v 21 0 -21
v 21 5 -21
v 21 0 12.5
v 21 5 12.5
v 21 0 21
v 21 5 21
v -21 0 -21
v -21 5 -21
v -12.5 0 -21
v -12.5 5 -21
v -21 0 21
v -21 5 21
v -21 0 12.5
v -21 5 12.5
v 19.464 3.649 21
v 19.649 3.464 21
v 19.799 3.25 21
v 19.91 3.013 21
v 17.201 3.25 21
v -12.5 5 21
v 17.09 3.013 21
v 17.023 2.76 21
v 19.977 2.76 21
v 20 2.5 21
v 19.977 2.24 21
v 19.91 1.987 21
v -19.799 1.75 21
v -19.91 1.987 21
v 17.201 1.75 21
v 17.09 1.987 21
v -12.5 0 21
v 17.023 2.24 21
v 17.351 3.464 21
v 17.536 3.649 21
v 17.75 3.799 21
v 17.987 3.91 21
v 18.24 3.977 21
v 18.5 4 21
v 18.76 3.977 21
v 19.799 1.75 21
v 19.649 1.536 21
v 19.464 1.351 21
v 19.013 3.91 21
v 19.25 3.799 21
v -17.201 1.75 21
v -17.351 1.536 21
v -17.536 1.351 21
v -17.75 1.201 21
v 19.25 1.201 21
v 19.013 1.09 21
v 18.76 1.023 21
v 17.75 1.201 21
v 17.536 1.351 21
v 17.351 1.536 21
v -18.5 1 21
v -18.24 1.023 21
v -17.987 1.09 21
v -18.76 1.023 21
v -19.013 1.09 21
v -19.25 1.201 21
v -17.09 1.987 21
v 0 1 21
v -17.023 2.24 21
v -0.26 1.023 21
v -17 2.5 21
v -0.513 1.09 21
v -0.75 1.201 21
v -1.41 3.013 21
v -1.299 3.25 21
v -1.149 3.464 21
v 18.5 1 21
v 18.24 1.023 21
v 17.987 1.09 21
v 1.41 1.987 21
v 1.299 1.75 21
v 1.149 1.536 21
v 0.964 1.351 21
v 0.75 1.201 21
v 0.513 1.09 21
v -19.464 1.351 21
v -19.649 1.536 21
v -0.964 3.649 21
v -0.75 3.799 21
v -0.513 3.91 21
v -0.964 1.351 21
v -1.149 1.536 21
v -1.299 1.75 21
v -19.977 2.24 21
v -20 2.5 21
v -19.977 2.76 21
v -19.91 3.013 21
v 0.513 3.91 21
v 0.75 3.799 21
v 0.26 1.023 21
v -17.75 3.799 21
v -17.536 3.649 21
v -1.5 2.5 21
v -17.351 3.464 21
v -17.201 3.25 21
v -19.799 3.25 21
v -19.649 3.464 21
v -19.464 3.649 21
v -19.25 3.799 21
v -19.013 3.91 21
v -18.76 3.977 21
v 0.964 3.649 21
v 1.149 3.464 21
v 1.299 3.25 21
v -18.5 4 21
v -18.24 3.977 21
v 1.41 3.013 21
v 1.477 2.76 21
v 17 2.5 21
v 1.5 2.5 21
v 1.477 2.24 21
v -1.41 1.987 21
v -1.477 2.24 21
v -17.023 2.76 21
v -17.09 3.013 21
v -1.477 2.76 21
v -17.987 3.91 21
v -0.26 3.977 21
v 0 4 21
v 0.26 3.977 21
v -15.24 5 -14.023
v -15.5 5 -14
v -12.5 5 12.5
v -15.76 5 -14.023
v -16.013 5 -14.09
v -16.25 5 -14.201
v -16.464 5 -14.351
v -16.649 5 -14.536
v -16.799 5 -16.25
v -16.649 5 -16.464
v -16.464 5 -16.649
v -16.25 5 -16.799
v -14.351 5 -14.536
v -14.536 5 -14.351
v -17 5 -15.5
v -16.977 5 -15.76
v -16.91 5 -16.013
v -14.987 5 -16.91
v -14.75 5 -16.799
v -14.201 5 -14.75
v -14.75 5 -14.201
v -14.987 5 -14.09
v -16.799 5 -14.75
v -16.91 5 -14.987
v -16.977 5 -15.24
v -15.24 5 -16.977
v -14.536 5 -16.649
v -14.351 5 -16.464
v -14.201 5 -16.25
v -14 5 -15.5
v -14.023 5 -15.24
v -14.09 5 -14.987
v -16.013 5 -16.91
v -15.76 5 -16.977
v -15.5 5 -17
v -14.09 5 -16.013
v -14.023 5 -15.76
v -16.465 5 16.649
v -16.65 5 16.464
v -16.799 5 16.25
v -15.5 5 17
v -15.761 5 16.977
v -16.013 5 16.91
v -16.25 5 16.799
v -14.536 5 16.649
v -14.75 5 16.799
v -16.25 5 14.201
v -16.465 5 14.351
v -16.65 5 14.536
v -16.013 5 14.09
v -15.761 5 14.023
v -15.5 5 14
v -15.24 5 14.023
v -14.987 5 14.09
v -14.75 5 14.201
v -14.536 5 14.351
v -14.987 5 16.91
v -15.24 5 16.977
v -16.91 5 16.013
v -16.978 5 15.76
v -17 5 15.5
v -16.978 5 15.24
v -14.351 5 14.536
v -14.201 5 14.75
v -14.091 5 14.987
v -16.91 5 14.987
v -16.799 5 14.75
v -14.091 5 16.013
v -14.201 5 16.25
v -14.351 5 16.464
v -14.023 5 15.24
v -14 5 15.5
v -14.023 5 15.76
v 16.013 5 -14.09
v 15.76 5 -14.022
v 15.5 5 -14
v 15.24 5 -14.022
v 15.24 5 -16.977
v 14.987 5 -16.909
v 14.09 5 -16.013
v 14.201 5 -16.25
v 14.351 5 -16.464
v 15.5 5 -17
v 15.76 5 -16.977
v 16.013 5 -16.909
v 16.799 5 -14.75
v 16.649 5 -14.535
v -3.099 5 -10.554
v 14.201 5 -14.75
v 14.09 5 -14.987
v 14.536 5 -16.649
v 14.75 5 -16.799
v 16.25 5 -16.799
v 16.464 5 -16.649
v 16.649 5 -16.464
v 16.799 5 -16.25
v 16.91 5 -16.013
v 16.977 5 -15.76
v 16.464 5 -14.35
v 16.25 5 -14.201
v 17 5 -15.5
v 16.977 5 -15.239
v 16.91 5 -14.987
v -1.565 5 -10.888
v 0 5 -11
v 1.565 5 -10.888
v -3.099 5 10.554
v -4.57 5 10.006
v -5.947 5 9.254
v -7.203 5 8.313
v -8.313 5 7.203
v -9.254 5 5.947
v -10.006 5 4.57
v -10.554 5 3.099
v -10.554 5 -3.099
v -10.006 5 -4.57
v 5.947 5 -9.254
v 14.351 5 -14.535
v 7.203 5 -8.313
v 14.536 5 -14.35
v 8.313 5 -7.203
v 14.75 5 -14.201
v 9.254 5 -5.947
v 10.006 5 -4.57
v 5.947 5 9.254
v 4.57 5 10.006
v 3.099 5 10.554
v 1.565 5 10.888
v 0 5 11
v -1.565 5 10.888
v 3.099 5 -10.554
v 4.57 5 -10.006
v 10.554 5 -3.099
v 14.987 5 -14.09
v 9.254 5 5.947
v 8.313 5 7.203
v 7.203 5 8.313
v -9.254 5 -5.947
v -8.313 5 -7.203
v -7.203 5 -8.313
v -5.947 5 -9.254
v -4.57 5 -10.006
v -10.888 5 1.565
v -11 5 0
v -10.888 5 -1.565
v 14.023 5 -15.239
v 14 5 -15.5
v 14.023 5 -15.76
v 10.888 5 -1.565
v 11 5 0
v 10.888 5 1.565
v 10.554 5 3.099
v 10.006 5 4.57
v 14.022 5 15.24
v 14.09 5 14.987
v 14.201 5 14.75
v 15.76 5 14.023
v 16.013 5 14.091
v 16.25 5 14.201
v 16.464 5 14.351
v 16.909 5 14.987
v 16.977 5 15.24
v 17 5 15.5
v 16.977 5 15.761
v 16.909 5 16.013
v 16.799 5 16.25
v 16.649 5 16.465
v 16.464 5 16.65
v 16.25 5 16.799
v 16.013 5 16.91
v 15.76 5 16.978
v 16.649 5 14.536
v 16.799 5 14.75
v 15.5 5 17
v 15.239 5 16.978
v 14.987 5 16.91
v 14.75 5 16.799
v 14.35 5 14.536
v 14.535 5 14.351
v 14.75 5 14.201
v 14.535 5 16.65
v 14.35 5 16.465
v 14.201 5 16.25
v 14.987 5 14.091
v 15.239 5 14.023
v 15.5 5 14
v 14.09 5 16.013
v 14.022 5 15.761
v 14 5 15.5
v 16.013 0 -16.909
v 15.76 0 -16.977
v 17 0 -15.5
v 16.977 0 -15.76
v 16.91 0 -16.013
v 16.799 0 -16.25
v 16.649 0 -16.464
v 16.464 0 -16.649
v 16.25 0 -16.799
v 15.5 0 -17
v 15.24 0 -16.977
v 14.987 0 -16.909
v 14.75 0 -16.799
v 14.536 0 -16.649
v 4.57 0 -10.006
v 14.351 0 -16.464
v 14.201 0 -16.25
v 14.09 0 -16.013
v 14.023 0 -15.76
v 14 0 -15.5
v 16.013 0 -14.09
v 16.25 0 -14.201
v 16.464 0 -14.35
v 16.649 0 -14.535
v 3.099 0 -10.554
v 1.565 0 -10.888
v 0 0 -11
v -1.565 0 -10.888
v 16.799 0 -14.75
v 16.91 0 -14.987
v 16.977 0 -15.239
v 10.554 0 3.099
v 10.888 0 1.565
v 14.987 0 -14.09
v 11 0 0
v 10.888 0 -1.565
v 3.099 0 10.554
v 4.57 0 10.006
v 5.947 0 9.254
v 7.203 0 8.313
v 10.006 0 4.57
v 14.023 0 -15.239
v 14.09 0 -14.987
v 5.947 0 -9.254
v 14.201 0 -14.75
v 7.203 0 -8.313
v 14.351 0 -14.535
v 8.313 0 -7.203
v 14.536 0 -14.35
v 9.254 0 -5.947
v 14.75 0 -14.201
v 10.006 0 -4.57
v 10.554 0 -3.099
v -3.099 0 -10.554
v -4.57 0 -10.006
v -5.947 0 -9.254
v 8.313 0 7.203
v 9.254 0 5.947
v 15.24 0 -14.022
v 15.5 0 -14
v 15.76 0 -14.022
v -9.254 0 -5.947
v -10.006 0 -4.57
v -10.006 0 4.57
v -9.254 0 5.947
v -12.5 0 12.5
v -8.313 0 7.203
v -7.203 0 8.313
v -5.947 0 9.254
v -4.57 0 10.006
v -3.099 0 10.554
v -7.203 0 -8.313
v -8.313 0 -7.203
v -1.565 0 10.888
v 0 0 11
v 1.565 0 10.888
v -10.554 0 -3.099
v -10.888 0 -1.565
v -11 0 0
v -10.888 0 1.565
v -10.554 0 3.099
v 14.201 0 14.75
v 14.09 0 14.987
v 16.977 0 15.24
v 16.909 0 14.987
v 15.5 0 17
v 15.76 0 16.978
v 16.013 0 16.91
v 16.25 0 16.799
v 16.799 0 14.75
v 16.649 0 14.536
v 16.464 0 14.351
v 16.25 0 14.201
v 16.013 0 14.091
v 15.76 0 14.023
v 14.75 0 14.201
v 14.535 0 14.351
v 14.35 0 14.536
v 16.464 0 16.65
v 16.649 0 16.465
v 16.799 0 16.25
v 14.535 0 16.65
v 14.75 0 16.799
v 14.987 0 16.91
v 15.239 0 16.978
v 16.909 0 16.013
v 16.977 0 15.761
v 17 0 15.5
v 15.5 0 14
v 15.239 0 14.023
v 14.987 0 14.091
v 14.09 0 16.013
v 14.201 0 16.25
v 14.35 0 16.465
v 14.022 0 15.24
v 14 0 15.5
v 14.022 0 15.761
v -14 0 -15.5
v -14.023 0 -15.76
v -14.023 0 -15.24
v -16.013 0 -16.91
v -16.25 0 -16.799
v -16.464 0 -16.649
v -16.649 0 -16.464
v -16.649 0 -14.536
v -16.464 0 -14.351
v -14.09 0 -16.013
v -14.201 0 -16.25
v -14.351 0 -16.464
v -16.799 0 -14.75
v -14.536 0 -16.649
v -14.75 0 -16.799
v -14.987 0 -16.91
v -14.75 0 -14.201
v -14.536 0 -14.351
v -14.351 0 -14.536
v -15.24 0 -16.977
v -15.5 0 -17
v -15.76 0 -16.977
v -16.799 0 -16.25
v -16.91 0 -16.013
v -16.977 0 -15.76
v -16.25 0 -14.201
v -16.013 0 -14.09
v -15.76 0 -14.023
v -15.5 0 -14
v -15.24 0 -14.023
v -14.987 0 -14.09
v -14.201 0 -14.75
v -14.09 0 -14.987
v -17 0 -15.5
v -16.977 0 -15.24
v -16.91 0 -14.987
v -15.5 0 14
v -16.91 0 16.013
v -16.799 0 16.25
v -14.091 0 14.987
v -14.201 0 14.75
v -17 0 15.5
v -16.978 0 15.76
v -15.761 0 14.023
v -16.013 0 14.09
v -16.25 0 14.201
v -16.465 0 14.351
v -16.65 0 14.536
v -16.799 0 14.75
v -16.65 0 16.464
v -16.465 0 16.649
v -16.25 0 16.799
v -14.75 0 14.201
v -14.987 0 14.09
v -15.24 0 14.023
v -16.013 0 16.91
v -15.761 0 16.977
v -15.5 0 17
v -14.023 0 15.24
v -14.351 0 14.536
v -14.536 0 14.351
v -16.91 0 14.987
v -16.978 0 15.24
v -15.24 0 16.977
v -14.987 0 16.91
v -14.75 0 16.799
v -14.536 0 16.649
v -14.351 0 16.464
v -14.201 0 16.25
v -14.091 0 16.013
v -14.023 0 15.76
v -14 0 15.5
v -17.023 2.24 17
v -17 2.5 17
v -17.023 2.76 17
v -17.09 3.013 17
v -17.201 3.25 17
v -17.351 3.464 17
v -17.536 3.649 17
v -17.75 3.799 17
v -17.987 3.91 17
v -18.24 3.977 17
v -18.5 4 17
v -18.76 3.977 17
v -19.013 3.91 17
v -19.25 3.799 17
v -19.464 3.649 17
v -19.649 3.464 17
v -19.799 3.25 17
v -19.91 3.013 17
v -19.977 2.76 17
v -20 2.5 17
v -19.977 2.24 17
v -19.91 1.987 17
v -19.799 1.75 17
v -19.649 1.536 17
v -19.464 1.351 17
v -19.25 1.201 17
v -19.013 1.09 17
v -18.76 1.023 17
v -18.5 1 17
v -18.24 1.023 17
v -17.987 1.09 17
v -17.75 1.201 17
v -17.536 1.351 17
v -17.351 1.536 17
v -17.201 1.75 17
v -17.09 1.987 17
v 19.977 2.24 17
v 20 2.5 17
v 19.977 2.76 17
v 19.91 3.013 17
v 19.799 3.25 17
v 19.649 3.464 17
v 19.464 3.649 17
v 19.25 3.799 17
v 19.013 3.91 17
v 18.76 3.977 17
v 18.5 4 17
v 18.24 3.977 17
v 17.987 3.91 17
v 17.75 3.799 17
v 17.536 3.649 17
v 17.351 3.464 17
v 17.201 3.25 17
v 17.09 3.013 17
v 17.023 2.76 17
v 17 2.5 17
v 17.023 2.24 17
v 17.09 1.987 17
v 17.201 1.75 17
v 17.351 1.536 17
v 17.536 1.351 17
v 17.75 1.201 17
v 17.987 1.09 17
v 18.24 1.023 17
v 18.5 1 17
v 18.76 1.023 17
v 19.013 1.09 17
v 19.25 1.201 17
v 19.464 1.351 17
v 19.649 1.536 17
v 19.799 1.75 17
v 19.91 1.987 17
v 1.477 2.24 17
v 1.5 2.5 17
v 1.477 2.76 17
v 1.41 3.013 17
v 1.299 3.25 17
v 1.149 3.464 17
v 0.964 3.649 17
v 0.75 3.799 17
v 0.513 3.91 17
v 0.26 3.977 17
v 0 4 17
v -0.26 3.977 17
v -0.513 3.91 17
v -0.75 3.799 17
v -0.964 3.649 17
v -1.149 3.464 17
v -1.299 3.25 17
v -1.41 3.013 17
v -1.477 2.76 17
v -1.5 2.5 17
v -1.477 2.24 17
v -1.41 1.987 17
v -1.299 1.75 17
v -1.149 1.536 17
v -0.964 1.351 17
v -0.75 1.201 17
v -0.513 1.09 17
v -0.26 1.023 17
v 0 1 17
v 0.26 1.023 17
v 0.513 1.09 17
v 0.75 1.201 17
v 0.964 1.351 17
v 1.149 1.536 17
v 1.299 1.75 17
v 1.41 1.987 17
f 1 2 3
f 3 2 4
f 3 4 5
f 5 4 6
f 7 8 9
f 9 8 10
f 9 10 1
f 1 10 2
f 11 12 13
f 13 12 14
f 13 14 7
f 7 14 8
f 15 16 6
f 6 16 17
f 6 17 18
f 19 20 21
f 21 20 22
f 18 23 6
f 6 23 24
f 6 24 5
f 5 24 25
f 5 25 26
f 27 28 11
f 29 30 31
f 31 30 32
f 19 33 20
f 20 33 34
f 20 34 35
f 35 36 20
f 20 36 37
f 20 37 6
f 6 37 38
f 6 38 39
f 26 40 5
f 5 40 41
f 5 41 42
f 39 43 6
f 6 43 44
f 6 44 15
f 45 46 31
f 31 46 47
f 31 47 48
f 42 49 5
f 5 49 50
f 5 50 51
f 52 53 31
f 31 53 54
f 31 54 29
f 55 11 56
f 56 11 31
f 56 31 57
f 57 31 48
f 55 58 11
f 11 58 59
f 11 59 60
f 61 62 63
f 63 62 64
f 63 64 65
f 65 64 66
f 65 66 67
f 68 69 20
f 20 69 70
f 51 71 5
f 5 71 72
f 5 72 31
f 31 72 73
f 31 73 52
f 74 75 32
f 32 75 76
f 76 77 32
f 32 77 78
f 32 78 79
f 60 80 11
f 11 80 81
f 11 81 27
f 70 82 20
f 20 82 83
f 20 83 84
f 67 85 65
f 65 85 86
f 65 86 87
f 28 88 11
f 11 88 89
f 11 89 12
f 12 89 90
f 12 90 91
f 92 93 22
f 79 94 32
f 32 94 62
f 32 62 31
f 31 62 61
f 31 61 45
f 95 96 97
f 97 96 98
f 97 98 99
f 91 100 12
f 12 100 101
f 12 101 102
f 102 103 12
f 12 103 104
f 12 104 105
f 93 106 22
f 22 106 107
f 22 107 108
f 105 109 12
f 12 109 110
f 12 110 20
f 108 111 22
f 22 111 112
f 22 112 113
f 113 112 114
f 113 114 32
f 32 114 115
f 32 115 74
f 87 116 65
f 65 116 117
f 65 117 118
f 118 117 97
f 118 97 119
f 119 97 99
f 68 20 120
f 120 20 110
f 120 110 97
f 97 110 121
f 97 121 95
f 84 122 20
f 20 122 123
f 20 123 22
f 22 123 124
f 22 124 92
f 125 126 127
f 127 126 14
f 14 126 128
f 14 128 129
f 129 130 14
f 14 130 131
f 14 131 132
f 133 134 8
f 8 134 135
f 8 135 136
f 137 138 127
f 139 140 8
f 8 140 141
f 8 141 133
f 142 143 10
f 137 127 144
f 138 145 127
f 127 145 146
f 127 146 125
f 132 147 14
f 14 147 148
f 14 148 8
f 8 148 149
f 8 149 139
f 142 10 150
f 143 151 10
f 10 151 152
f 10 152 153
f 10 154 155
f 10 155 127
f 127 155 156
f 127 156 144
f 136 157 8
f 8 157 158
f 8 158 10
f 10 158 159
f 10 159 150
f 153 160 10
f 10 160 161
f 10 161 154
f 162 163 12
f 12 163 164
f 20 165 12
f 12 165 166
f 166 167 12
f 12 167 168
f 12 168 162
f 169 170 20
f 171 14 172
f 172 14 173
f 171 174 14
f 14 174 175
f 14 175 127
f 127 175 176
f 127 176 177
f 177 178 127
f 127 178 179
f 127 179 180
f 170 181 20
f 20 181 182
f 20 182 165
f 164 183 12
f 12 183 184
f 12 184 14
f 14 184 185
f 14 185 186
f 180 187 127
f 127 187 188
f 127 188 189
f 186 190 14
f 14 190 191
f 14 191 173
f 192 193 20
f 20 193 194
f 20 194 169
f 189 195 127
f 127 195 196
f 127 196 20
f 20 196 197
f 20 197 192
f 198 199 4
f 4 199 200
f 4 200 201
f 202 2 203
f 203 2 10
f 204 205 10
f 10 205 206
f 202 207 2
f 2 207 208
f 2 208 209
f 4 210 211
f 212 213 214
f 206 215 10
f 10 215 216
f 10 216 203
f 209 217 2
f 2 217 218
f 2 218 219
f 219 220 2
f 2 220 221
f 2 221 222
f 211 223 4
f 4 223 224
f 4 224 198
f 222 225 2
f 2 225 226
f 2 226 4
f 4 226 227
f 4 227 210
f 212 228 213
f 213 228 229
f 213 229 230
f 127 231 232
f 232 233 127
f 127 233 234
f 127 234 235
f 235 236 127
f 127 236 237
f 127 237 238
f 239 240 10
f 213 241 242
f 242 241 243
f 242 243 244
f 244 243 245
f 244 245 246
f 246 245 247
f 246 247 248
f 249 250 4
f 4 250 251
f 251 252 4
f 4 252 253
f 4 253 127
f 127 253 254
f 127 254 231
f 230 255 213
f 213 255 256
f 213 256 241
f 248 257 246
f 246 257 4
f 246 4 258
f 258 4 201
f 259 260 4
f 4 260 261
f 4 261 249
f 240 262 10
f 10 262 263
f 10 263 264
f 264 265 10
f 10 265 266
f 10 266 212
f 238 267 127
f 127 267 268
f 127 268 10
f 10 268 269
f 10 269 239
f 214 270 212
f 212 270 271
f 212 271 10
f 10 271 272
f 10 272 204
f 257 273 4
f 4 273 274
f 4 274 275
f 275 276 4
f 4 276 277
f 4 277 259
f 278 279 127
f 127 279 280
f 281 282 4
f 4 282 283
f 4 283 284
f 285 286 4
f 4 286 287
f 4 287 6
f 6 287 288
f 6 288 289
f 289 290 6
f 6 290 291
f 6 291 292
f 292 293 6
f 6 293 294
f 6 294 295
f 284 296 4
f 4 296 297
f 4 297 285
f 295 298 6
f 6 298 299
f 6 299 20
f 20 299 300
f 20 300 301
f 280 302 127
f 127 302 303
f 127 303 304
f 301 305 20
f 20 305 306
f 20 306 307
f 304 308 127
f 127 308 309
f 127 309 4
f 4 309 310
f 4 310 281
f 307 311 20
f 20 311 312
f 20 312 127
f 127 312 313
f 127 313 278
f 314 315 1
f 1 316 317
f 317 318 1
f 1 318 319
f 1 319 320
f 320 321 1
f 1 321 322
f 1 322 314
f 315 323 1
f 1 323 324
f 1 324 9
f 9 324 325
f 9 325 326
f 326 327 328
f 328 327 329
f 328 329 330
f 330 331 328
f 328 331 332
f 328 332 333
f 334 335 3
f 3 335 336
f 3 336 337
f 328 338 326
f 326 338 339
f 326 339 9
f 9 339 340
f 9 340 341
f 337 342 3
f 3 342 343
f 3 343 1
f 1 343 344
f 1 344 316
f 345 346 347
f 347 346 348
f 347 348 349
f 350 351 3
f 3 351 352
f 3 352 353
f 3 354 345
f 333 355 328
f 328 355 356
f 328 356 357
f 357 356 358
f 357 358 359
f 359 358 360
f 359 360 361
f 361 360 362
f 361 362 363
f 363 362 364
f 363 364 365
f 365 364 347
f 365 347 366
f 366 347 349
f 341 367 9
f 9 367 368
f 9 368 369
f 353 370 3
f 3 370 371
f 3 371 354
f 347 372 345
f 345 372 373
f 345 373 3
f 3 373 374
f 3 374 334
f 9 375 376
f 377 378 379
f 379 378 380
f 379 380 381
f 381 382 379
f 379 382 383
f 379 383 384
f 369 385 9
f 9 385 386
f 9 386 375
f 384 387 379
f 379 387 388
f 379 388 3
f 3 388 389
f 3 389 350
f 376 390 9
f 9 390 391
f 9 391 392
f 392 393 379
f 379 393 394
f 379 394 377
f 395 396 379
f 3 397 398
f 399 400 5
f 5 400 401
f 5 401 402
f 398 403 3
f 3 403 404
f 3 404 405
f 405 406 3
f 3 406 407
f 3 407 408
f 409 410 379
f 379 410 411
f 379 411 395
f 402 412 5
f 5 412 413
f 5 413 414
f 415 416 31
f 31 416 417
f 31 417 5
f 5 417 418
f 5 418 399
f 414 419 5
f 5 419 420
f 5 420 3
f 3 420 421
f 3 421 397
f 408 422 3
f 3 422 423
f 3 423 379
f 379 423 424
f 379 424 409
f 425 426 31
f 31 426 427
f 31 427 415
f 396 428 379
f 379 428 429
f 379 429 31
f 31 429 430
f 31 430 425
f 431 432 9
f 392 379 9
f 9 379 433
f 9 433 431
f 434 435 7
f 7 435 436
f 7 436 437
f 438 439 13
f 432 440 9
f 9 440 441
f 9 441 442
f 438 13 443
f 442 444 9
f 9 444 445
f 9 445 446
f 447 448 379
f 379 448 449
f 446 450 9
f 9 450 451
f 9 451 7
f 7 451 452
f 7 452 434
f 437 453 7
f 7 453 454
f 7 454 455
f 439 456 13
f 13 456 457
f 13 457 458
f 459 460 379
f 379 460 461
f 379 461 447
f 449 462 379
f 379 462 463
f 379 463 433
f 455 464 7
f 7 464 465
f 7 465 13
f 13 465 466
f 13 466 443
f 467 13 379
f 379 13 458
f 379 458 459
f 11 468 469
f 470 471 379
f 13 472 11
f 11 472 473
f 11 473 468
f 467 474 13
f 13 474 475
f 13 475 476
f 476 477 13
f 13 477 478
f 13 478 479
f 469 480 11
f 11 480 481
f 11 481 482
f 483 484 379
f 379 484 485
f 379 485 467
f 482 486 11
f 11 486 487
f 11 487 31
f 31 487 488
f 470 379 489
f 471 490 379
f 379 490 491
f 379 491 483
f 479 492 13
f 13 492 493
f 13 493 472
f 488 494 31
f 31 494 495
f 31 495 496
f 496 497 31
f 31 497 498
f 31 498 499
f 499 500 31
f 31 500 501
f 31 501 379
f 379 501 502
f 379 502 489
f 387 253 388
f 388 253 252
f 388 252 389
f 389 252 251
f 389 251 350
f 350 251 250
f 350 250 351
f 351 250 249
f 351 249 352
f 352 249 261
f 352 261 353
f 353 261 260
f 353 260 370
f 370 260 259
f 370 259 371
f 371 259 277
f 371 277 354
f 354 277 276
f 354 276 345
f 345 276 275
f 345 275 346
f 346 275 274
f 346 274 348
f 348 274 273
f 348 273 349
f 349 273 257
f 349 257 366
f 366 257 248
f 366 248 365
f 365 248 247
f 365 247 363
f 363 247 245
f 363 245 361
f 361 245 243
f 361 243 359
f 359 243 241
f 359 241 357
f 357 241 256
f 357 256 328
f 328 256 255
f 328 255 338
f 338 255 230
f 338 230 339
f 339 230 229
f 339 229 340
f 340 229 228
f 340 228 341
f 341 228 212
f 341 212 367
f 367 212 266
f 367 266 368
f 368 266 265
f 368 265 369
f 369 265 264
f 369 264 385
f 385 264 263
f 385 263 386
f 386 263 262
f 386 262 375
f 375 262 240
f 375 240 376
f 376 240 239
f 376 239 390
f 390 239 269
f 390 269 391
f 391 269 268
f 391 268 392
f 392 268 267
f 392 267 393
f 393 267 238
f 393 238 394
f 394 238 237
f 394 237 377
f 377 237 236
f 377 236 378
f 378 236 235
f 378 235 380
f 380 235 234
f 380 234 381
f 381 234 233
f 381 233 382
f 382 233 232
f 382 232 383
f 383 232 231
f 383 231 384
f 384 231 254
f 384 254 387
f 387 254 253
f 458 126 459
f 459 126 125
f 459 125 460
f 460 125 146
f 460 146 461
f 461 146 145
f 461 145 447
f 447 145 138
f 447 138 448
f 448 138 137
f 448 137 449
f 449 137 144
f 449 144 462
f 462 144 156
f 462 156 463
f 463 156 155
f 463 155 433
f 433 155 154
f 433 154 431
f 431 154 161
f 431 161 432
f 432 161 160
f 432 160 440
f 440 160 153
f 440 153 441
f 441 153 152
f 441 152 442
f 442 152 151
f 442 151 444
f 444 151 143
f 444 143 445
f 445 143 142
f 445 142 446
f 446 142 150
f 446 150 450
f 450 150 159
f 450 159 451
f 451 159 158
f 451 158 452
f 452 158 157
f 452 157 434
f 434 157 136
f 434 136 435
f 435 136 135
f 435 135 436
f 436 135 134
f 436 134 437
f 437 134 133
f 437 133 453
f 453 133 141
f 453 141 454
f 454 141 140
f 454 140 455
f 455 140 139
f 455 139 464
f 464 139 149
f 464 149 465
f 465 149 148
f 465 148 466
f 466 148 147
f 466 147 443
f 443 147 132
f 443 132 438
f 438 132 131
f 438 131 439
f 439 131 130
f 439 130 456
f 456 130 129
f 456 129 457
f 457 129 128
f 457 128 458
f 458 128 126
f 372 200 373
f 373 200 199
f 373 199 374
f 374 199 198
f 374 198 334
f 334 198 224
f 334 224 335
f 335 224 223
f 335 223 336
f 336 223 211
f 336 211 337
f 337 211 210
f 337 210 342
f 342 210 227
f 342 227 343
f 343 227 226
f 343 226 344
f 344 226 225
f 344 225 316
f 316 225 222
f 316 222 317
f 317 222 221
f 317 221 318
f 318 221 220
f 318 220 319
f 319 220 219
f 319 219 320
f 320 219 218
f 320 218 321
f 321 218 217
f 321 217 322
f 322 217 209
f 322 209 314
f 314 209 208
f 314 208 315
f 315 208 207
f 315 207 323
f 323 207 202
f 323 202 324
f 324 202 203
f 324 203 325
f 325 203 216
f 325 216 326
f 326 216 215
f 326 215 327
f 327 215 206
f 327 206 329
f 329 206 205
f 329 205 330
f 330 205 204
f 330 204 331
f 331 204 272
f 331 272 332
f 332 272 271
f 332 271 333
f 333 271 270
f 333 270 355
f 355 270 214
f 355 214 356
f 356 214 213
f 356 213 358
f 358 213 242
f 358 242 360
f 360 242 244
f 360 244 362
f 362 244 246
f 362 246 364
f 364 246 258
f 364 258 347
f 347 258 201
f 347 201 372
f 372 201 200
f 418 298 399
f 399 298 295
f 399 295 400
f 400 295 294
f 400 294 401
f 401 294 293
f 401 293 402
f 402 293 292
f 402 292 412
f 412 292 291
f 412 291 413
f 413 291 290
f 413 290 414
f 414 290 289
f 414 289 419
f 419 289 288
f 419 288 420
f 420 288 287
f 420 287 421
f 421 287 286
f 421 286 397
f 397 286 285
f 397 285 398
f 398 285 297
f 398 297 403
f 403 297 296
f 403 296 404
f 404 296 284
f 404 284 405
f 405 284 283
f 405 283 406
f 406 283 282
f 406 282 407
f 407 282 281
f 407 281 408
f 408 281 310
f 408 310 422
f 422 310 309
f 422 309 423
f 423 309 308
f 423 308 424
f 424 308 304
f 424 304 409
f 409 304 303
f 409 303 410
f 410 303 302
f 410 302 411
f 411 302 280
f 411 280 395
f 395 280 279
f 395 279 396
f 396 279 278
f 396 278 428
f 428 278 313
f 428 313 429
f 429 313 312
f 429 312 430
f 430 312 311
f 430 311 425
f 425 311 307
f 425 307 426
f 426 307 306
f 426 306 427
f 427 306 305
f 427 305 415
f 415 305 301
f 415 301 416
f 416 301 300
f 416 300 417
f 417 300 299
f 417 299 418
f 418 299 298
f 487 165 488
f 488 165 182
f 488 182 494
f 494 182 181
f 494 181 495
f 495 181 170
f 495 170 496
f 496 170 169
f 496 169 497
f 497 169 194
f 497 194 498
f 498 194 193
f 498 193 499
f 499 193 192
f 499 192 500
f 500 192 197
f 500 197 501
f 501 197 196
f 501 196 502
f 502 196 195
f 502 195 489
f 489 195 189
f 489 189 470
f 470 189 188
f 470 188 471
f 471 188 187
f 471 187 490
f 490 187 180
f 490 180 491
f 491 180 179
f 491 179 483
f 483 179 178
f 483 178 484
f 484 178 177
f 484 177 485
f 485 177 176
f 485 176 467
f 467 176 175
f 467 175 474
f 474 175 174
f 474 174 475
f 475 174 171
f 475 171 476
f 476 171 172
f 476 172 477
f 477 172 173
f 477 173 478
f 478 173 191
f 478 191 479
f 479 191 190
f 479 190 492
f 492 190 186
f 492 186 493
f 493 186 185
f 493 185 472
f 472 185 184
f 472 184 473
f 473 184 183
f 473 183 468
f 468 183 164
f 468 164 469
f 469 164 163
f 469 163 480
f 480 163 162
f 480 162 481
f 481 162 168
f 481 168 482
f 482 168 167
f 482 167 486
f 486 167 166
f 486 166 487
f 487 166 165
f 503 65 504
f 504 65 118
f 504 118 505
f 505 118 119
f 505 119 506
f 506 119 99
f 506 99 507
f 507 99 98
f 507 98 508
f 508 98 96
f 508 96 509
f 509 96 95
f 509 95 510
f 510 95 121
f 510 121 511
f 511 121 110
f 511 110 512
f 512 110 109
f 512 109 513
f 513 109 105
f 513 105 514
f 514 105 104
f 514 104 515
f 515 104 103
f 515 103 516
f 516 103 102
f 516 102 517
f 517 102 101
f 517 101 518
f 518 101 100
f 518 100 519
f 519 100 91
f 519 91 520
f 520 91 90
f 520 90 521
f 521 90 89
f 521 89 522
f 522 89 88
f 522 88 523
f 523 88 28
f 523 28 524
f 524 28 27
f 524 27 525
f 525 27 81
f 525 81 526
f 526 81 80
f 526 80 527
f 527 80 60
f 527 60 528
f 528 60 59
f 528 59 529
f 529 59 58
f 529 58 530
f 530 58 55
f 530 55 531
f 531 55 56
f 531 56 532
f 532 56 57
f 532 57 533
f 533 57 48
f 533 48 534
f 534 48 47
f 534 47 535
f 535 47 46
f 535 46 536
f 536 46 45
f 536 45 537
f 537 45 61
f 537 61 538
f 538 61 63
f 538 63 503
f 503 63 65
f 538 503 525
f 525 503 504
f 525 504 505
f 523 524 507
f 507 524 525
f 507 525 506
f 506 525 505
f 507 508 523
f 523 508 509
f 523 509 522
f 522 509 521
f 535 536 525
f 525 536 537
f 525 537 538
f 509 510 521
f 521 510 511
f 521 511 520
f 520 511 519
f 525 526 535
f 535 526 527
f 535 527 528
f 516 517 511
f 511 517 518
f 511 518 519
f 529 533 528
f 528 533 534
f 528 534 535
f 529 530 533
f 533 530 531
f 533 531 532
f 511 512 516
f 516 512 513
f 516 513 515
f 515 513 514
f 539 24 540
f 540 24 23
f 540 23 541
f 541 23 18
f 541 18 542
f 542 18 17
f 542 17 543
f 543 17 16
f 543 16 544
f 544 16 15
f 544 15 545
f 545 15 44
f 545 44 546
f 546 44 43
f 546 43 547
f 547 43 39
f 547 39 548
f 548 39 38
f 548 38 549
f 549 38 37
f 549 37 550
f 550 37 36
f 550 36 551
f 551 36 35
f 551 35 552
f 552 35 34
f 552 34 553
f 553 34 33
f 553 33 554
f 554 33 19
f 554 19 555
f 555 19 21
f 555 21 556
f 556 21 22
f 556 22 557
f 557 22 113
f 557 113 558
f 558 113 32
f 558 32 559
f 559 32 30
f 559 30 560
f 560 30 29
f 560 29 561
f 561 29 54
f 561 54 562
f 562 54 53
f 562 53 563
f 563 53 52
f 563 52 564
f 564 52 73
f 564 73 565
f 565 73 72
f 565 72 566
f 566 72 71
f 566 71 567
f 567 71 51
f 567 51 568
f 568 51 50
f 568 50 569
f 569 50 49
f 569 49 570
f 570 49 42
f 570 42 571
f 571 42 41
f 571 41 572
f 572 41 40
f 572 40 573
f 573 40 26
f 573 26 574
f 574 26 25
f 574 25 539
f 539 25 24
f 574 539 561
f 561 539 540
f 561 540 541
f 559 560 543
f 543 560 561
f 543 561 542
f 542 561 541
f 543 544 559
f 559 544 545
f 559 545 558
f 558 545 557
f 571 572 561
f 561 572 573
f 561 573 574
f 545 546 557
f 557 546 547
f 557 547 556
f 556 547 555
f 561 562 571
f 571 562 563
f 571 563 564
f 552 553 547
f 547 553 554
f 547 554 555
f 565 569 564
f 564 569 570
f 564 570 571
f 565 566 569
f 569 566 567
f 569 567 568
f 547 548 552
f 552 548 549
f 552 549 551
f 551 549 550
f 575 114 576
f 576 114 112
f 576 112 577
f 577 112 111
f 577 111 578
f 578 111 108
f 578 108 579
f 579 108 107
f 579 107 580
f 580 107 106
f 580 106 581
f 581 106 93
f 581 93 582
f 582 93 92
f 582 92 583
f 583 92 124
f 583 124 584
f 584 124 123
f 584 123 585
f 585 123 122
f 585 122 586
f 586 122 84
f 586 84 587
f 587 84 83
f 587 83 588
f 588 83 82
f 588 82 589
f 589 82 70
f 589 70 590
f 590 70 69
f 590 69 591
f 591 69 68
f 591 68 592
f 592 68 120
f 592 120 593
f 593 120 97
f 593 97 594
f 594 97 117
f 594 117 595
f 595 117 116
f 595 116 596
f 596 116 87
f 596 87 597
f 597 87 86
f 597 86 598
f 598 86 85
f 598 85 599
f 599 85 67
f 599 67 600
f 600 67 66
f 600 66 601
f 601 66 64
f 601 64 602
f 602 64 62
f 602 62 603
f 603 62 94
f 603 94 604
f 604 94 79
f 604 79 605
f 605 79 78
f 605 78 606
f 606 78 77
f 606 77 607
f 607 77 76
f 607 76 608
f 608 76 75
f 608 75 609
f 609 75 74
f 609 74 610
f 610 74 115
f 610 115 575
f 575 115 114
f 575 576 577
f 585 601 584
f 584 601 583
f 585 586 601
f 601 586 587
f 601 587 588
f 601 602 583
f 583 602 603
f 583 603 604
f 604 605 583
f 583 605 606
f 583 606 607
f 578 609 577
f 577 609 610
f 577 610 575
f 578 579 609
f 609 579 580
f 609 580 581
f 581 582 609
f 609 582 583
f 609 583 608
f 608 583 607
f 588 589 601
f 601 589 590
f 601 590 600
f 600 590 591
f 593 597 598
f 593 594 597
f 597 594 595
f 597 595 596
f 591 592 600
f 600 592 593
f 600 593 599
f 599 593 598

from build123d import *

# Parameters (mm, degrees)
SKETCH_1_W          = 42
SKETCH_1_H          = 42
EXTRUDE_1_DEPTH     = 5
SKETCH_3_R          = 11
SKETCH_3_R_2        = 1.5
CUT_EXTRUDE_1_DEPTH = 31.116440693
SKETCH_2_R          = 1.5
CUT_EXTRUDE_3_DEPTH = 4


with BuildPart() as part:
    # 스케치1 → 보스-돌출1 (new body)
    with BuildSketch(Plane(origin=(0, 0, 0), x_dir=(1, 0, 0), z_dir=(0, 1, 0))):
        Rectangle(SKETCH_1_W, SKETCH_1_H)
    extrude(amount=EXTRUDE_1_DEPTH)

    # 스케치3 → 컷-돌출1 (cut, through all)
    with BuildSketch(Plane(origin=(0, 5, 0), x_dir=(1, 0, 0), z_dir=(0, 1, 0))):
        with Locations(Location((0, 0, 0), (0, 0, 270))):
            Circle(SKETCH_3_R)
        with Locations(Location((-15.5, 15.5, 0), (0, 0, 270))):
            Circle(SKETCH_3_R_2)
        with Locations(Location((15.499999997, 15.49956129, 0), (0, 0, 270))):
            Circle(SKETCH_3_R_2)
        with Locations(Location((15.499561287, -15.500438707, 0), (0, 0, 270))):
            Circle(SKETCH_3_R_2)
        with Locations(Location((-15.50043871, -15.499999997, 0), (0, 0, 270))):
            Circle(SKETCH_3_R_2)
    extrude(amount=-CUT_EXTRUDE_1_DEPTH, mode=Mode.SUBTRACT)

    # 스케치2 → 컷-돌출3 (cut)
    with BuildSketch(Plane.XY.offset(21)):
        with Locations((-18.5, 2.5)):
            Circle(SKETCH_2_R)
        with Locations((18.5, 2.5)):
            Circle(SKETCH_2_R)
        with Locations((0, 2.5)):
            Circle(SKETCH_2_R)
    extrude(amount=-CUT_EXTRUDE_3_DEPTH, mode=Mode.SUBTRACT)


solid = part.part
